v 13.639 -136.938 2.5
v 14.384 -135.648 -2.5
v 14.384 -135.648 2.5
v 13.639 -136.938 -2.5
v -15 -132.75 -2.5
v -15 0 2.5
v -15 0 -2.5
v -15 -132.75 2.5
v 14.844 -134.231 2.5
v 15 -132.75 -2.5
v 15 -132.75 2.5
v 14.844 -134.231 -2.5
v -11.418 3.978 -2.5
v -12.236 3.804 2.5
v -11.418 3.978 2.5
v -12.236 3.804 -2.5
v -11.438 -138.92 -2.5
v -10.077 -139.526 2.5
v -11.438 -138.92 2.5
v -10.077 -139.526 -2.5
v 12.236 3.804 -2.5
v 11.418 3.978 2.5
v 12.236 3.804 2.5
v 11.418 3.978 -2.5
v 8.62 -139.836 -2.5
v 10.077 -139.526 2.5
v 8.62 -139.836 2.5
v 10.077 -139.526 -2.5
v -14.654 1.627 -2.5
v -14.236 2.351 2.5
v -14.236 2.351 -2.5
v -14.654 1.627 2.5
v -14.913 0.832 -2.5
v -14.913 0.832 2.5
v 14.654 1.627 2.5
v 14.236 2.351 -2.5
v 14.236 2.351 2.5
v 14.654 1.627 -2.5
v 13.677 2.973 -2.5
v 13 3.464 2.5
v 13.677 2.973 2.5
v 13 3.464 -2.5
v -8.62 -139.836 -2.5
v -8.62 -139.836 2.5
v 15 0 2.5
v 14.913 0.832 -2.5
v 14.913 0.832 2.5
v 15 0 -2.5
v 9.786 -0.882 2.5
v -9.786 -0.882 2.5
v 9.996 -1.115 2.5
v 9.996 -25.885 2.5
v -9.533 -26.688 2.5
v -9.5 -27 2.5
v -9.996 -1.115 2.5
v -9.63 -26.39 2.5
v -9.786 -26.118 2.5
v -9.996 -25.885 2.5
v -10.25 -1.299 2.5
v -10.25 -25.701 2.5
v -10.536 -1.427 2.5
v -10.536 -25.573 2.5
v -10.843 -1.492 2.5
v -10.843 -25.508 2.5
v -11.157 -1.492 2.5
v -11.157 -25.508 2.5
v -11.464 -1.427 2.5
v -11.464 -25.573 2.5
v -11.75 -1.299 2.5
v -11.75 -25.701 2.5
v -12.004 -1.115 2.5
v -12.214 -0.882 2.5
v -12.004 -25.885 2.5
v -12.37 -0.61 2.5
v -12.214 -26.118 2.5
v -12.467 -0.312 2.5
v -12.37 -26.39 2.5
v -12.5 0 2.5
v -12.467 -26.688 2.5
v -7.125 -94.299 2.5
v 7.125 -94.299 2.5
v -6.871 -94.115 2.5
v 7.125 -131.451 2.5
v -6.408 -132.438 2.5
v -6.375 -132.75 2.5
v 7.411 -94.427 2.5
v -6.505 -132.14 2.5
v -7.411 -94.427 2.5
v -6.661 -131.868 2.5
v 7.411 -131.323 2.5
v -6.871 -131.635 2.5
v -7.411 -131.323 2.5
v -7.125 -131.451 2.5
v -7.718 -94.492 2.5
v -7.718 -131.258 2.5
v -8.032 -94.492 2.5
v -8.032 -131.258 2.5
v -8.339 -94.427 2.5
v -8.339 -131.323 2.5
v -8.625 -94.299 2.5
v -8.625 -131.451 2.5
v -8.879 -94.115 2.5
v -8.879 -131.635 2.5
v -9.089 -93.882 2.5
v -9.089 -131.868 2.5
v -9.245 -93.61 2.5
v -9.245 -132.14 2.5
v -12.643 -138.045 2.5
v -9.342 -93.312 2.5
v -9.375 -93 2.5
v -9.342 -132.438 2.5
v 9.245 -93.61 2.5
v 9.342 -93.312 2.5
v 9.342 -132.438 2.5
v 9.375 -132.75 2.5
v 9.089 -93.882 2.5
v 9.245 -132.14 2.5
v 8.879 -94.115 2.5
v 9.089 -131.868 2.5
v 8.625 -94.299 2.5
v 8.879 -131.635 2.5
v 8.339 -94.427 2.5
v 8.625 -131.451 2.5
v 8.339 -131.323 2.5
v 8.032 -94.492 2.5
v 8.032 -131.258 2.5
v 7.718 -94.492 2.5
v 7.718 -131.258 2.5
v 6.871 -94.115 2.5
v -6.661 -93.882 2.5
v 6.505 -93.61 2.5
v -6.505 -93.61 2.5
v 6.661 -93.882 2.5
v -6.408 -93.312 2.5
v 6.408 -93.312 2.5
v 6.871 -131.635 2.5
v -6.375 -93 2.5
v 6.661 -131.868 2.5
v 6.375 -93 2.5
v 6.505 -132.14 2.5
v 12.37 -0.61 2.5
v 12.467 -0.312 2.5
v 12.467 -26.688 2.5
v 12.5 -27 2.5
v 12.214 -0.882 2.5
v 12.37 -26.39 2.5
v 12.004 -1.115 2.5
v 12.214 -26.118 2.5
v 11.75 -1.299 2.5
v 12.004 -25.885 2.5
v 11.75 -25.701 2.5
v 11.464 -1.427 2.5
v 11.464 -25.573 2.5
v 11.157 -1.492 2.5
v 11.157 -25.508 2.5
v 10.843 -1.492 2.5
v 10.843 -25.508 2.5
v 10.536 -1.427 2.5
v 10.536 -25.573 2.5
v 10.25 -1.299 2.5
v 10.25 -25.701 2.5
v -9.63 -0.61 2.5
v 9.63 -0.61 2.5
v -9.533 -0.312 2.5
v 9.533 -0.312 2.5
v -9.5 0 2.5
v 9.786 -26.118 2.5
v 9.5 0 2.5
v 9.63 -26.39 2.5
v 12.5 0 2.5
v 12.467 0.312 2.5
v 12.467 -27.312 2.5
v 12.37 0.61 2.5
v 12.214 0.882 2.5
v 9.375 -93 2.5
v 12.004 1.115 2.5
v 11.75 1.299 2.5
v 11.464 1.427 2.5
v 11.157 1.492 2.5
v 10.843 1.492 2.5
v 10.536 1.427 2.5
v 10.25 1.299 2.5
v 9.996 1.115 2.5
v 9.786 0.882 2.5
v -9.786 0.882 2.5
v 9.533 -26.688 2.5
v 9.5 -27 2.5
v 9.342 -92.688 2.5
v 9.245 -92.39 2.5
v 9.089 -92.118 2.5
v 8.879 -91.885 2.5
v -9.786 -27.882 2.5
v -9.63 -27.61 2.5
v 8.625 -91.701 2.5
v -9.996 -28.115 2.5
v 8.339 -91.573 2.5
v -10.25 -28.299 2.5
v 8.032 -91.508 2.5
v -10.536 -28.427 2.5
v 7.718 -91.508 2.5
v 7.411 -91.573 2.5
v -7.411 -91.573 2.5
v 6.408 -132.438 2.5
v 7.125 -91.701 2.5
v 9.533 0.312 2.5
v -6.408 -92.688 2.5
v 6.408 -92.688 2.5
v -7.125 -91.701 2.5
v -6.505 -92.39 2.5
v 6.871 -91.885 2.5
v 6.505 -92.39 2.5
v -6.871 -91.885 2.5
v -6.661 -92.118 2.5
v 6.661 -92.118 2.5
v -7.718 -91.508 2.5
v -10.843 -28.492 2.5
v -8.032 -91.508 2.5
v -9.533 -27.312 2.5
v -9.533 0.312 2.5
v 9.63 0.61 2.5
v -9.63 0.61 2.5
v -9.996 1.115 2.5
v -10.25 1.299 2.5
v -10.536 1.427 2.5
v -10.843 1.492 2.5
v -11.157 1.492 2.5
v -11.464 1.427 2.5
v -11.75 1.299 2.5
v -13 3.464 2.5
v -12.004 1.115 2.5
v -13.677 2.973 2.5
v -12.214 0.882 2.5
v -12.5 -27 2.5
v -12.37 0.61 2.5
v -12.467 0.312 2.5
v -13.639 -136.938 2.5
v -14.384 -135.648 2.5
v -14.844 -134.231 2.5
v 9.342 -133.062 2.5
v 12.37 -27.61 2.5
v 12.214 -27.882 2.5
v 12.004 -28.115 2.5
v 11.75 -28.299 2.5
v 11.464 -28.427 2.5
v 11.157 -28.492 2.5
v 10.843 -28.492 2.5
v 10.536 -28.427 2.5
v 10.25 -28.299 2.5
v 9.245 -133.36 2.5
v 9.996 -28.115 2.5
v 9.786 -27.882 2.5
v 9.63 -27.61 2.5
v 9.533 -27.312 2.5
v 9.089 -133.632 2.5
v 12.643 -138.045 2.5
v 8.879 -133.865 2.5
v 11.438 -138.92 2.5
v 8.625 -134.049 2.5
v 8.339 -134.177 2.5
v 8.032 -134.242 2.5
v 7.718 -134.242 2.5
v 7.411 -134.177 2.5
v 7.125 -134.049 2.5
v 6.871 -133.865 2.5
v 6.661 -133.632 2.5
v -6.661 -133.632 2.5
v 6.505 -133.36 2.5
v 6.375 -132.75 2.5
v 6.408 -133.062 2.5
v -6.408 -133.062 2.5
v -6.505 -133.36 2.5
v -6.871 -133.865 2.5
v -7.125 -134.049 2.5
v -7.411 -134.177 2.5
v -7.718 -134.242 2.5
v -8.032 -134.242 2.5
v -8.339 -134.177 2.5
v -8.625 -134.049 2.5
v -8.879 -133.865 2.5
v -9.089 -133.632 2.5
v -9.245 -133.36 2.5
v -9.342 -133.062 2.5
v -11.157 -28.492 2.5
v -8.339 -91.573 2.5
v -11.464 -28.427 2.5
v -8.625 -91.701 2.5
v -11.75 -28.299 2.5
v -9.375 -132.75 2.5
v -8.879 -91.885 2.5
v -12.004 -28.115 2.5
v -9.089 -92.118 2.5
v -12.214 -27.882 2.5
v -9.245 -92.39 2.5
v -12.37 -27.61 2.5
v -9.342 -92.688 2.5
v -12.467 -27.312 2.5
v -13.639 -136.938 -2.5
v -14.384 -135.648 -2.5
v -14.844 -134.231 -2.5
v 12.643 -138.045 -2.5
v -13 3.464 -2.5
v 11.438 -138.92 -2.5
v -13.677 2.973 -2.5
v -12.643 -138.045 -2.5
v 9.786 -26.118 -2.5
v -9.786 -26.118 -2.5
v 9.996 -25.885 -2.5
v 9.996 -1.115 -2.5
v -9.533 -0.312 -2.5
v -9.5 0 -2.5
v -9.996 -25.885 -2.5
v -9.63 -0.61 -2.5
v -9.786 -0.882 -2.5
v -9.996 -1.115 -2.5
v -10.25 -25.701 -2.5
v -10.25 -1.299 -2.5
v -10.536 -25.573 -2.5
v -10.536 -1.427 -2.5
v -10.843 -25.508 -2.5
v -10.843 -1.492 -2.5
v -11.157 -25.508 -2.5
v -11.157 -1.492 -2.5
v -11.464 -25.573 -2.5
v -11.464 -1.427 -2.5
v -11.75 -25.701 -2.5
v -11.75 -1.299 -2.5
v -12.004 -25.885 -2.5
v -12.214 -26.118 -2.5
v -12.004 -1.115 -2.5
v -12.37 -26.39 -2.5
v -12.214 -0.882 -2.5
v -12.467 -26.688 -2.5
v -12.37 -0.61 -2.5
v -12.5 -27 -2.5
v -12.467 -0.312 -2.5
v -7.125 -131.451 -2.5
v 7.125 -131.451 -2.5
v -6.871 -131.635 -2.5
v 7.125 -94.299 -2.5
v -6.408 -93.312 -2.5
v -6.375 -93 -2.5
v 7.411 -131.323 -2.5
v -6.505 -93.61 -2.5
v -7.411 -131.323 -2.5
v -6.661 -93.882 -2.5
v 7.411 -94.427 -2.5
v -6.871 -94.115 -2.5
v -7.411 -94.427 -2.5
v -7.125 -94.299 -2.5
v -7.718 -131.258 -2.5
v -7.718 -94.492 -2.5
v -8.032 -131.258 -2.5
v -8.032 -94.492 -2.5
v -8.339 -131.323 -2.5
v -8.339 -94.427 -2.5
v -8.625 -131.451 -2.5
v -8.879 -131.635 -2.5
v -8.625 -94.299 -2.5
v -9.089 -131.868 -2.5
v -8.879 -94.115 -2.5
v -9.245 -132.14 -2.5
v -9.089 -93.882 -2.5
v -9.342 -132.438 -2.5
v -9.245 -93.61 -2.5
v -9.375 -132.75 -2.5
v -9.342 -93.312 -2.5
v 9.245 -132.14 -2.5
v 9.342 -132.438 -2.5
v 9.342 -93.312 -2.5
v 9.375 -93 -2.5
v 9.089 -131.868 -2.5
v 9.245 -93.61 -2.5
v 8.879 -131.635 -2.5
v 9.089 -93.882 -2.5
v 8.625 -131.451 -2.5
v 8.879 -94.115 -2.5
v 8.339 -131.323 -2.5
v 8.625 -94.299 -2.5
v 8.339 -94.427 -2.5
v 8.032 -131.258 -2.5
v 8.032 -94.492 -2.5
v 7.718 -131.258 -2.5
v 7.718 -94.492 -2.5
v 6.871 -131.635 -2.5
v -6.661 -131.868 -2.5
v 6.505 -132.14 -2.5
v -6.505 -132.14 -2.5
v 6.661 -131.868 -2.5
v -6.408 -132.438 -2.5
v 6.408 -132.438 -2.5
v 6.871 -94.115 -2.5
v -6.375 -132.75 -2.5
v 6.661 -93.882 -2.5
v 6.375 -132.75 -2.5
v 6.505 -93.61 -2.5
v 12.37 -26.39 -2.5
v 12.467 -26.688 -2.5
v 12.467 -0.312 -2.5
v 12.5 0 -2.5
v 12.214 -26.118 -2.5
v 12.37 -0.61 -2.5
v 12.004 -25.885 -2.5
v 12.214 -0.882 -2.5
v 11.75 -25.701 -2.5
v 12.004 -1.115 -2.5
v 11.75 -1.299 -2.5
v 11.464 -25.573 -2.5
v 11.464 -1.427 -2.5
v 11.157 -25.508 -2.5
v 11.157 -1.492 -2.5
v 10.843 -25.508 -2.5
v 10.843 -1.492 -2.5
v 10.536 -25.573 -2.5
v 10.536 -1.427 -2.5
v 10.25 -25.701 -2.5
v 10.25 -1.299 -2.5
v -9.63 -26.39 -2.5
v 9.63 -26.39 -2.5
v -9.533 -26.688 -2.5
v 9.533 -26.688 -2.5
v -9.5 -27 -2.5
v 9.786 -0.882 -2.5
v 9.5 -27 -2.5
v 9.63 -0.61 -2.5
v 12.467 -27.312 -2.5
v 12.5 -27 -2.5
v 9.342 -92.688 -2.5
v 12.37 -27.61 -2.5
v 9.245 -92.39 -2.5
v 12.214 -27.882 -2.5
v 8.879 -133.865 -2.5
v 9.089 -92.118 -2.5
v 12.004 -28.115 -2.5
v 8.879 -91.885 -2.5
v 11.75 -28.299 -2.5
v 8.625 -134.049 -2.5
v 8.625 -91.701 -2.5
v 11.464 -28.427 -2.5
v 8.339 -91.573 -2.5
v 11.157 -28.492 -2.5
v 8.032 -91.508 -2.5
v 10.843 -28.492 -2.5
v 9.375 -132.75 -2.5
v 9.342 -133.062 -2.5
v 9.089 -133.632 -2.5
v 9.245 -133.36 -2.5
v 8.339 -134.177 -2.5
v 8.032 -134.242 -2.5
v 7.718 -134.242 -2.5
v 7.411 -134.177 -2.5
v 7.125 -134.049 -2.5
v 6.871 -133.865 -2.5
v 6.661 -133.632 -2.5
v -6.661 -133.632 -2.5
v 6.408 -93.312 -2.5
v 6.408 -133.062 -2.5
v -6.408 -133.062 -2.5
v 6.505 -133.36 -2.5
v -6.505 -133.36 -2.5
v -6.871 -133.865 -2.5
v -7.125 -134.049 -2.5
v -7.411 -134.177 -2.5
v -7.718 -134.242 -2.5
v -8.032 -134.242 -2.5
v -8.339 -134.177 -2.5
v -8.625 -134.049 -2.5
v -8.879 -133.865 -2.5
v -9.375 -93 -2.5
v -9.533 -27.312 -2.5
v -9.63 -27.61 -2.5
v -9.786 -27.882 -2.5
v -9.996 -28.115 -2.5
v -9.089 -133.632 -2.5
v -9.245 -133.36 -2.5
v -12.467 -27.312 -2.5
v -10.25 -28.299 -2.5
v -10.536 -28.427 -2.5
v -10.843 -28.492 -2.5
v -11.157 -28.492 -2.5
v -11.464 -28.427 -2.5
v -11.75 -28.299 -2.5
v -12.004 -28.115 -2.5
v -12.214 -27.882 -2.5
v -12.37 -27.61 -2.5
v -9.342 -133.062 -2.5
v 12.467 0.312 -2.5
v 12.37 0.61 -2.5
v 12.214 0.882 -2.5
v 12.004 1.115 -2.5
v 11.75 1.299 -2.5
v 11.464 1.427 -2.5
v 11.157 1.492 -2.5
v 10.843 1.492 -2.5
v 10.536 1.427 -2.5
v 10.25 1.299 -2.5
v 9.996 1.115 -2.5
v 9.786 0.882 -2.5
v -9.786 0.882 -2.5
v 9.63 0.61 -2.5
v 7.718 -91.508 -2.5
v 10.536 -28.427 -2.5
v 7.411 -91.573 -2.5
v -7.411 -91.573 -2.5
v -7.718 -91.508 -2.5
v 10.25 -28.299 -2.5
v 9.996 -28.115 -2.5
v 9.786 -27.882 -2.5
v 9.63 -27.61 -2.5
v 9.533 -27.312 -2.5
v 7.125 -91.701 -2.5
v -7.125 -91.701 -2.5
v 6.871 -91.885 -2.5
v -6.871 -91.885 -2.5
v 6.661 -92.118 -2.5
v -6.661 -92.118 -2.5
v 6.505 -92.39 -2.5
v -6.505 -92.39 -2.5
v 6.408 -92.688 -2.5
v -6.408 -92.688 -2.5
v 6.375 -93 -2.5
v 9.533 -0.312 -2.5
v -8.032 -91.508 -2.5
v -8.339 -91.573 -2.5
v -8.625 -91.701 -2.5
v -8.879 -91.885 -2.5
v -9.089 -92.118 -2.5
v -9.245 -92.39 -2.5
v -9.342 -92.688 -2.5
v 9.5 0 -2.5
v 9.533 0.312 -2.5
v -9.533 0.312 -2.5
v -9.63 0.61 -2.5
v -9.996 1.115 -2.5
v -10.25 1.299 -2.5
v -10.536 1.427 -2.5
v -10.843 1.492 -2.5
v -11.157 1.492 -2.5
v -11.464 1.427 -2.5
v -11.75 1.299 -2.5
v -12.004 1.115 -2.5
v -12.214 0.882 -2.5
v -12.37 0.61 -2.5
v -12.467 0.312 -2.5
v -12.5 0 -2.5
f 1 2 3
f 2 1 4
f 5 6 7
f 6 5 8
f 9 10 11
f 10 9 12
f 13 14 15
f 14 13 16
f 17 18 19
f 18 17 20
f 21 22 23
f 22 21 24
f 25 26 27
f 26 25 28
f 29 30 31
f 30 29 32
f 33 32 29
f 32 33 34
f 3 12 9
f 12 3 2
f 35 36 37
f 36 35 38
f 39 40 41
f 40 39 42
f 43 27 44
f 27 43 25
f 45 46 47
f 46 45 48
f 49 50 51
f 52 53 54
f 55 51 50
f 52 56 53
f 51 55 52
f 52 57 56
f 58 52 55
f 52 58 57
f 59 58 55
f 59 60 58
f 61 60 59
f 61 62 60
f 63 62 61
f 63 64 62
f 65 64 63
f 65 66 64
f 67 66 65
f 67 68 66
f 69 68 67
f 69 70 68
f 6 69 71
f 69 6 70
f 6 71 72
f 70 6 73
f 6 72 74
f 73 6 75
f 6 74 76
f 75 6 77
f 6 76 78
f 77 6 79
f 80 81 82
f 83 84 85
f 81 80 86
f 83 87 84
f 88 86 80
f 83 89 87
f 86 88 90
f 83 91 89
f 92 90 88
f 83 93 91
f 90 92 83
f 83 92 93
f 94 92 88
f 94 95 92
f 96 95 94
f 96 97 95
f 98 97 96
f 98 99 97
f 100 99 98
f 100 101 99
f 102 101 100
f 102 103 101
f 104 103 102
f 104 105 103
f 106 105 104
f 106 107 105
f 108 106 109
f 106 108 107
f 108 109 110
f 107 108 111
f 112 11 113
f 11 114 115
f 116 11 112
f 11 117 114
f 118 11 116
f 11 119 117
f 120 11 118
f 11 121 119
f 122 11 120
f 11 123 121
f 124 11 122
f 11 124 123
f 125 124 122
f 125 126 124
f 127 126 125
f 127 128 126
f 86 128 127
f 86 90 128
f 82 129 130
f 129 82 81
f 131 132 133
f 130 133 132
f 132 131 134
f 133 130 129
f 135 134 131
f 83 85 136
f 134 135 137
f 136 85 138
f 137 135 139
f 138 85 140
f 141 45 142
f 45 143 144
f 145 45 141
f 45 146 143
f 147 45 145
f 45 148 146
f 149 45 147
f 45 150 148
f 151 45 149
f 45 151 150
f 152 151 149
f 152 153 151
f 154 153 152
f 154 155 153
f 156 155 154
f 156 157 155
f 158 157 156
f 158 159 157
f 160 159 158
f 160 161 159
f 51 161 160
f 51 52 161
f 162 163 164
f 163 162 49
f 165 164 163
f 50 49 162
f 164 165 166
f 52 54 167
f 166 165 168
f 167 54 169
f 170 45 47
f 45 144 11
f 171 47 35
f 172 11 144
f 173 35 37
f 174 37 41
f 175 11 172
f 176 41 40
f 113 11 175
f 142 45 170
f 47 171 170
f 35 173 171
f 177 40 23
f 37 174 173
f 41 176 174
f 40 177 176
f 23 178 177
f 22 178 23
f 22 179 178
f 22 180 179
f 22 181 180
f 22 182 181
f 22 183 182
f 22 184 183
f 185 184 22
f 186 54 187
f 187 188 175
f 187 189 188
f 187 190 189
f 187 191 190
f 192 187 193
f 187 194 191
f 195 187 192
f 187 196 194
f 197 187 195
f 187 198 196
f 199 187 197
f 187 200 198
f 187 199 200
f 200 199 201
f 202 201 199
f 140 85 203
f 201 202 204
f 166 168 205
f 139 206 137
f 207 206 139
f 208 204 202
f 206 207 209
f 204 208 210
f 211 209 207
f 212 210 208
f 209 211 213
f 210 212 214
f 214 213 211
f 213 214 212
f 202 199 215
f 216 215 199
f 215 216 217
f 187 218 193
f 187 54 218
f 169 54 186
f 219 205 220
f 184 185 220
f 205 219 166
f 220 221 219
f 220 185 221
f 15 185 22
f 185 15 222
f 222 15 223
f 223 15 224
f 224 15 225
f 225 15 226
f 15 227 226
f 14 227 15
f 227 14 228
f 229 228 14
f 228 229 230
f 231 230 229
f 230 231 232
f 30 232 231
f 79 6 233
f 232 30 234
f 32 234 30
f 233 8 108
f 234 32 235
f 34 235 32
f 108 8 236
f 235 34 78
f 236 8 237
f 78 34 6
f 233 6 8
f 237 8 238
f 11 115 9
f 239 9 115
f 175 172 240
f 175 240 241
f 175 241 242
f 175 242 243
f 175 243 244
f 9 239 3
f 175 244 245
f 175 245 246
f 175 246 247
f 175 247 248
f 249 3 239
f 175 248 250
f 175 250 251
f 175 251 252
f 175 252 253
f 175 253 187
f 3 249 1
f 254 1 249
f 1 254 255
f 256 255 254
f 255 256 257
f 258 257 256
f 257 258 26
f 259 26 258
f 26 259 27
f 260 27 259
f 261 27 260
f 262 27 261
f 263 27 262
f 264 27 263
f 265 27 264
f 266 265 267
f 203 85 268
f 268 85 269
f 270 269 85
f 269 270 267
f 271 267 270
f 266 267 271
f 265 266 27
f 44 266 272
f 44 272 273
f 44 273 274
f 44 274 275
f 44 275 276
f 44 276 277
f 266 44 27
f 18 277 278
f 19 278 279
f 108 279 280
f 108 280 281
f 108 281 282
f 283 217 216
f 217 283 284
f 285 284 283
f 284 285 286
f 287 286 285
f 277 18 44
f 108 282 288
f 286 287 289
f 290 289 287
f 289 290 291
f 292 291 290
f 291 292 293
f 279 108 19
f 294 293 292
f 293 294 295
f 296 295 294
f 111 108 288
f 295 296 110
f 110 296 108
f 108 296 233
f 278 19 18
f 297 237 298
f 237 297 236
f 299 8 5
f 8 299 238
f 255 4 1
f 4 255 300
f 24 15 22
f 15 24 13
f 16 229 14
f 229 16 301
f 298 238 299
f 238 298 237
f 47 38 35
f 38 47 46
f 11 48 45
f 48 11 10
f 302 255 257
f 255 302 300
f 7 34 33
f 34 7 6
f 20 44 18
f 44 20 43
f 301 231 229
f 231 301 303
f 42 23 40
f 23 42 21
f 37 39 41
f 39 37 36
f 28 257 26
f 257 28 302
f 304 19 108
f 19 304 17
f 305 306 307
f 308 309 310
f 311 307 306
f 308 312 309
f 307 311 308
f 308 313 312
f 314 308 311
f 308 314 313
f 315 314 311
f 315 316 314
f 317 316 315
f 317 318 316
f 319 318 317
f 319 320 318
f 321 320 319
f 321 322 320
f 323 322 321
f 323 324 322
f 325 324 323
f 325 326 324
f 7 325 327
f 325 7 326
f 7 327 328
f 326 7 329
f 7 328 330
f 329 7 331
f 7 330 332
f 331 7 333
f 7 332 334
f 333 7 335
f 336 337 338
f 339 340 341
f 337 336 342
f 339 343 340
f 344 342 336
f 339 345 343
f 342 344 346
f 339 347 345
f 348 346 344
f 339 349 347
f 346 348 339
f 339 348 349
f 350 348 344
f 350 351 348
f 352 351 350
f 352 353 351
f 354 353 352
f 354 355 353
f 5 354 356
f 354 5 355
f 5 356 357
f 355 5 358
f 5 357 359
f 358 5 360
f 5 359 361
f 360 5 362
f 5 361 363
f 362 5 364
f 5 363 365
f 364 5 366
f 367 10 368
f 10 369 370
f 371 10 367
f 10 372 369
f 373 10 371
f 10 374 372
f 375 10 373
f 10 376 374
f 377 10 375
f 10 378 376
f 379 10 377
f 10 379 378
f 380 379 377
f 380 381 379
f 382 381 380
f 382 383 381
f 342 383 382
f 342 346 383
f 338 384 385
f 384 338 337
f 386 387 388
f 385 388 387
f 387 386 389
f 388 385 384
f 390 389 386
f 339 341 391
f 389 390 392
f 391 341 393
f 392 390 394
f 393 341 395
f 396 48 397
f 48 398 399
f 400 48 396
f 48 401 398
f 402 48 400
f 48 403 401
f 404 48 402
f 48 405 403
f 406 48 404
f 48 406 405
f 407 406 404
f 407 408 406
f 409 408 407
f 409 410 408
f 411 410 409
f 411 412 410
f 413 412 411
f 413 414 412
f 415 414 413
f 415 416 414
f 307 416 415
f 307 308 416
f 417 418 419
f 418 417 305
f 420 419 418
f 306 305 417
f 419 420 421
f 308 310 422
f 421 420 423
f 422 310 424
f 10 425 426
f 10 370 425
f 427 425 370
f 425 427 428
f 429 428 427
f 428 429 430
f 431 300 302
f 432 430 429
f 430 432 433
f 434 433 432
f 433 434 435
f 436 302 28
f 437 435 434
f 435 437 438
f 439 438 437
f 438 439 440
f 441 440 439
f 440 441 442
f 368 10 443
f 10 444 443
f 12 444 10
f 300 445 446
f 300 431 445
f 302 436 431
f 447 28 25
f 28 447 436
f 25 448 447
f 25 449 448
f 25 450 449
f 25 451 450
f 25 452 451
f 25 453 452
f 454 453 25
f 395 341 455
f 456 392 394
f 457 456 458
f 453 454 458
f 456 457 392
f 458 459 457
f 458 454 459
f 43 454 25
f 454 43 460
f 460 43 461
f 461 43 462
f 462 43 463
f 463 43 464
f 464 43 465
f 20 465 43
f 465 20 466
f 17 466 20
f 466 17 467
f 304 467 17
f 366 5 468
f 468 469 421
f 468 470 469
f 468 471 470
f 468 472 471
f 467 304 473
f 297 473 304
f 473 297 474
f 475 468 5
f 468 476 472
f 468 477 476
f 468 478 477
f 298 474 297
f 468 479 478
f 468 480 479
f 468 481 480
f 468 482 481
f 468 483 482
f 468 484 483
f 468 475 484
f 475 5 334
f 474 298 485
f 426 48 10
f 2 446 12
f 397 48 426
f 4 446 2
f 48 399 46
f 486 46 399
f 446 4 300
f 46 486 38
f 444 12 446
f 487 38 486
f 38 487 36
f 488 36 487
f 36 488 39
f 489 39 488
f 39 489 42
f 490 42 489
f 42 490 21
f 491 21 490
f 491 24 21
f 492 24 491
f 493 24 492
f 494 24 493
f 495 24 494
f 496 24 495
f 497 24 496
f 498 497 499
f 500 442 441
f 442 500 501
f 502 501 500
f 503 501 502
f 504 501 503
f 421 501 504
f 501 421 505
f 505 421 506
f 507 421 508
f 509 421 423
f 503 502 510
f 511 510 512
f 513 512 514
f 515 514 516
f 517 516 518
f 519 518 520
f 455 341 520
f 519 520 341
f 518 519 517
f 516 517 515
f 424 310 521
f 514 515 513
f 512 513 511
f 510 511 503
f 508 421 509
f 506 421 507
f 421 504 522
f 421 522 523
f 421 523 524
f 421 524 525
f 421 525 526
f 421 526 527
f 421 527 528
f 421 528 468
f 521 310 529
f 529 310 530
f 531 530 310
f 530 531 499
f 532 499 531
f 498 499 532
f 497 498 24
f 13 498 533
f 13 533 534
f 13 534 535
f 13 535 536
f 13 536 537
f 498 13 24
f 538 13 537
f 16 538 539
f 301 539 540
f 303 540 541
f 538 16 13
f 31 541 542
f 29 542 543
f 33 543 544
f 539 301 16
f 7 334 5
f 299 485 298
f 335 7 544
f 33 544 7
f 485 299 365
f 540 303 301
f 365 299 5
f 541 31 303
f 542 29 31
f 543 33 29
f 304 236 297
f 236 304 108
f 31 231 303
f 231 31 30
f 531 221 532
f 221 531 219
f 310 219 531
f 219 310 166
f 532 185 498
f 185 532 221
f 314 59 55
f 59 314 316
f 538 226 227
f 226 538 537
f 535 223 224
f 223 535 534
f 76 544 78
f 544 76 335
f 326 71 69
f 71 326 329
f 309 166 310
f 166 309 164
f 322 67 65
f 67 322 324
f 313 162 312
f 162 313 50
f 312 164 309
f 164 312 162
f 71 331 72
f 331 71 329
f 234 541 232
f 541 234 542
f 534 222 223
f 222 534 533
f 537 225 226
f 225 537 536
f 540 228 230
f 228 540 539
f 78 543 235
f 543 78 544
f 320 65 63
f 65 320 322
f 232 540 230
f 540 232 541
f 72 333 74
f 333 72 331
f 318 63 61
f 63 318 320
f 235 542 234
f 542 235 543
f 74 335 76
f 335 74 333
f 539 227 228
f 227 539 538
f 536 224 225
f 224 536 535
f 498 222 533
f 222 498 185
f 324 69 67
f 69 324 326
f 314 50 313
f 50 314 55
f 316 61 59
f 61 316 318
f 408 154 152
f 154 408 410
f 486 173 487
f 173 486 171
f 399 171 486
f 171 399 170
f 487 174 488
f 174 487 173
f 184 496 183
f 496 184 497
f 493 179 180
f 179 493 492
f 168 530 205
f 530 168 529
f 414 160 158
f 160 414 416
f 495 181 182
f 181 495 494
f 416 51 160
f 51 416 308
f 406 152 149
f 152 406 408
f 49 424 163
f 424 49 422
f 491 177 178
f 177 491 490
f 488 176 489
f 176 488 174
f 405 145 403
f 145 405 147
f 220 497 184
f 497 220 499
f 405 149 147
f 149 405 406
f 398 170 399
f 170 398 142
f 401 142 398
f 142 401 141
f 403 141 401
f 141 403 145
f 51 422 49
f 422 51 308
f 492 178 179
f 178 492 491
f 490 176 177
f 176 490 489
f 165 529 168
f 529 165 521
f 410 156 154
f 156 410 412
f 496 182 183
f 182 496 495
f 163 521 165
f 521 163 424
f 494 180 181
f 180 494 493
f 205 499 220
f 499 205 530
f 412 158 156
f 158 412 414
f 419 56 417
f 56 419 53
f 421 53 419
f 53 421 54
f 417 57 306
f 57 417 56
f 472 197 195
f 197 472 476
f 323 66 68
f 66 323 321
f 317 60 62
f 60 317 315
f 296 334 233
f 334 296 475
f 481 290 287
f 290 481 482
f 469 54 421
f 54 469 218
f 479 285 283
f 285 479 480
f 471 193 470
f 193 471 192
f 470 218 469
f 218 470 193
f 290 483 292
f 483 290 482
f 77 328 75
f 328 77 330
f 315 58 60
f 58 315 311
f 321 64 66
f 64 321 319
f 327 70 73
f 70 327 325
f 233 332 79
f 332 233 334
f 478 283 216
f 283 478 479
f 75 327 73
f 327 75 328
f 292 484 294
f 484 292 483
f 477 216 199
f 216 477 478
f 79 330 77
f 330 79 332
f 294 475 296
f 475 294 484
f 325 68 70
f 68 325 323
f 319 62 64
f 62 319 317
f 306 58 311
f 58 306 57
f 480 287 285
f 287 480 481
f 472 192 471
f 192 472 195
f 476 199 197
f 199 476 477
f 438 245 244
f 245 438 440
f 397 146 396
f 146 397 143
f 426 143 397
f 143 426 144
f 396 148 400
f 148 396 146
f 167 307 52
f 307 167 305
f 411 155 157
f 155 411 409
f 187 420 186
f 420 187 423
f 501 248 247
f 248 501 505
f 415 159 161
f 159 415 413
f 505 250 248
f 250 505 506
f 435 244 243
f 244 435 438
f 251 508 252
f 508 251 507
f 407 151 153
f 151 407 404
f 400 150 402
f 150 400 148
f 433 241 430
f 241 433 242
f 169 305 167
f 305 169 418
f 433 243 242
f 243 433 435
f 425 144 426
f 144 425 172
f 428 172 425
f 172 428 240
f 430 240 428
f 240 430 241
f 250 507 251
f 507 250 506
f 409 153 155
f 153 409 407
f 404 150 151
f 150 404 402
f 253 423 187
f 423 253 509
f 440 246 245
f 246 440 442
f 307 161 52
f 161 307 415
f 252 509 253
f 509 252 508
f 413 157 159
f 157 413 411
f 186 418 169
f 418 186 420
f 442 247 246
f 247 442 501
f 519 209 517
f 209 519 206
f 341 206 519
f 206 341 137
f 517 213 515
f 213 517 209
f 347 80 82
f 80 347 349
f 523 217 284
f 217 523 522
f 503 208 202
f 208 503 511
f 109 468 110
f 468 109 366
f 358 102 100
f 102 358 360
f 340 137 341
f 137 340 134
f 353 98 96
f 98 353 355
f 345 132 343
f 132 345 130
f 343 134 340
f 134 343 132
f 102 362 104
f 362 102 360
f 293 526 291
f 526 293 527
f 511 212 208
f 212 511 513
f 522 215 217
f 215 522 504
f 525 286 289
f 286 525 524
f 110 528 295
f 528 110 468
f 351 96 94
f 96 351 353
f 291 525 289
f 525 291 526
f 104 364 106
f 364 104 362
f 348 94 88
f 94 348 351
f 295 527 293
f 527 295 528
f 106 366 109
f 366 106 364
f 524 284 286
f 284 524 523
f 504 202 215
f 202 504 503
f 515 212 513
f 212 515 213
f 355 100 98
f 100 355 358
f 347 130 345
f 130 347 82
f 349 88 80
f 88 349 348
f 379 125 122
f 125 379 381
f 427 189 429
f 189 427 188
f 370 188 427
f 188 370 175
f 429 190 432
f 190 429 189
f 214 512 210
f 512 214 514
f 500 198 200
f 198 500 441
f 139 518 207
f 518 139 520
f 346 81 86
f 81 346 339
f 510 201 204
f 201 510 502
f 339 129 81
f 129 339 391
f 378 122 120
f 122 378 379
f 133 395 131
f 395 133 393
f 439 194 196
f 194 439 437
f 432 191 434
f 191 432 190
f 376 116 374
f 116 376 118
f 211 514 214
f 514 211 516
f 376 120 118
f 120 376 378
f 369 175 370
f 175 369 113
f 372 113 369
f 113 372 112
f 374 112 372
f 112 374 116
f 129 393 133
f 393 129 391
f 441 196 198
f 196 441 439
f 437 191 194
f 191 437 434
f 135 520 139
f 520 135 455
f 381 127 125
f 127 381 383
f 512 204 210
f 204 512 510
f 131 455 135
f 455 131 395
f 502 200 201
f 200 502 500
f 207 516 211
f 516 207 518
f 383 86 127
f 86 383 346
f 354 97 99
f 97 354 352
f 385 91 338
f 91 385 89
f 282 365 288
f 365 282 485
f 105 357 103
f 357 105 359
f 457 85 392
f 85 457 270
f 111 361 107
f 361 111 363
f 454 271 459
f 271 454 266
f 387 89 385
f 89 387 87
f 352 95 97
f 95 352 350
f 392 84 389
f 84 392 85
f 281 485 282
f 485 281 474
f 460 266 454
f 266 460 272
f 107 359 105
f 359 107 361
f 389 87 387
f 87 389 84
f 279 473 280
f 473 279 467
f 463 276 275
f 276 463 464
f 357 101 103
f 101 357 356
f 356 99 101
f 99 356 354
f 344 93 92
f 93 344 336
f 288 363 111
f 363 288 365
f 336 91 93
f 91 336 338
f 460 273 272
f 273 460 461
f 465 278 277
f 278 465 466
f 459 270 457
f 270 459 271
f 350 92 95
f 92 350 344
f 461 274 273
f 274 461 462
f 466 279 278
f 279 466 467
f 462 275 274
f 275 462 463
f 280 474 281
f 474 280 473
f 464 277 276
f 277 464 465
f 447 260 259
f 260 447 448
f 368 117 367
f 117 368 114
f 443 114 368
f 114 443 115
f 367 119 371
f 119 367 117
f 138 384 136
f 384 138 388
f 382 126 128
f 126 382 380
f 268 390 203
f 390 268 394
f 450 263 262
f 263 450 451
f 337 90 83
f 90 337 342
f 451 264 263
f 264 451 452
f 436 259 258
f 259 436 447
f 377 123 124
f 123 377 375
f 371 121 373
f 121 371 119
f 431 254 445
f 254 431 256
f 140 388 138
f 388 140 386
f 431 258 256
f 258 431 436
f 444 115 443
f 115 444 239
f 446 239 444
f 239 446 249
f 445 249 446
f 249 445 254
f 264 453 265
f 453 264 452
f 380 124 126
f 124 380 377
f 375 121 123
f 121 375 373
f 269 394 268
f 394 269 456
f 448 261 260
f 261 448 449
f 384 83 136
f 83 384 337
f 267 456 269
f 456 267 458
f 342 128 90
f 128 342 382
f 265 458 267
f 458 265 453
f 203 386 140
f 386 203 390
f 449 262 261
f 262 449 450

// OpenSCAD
s=5;
$fn=30;
difference(){
hull(){
    translate([-11,0,0]) cylinder(h=s, r=4, center=true);
    translate([11,0,0]) cylinder(h=s, r=4, center=true);
    translate([-(13+18.5)/4,-93-(37+42.5)/2,0]) cylinder(h=s, d=30-(13+18.5)/2, center=true);
    translate([(13+18.5)/4,-93-(37+42.5)/2,0]) cylinder(h=s, d=30-(13+18.5)/2, center=true);
}
    translate([-11,0,0]) cylinder(h=s+1, d=3, center=true);
    translate([11,0,0]) cylinder(h=s+1, d=3, center=true);
    translate([-11,-27,0]) cylinder(h=s+1, d=3, center=true);
    translate([11,-27,0]) cylinder(h=s+1, d=3, center=true);
    {
    translate([-(13+18.5)/4,-93,0]) cylinder(h=s+1, d=3, center=true);
    translate([(13+18.5)/4,-93,0]) cylinder(h=s+1, d=3, center=true);
    translate([-(13+18.5)/4,-93-(37+42.5)/2,0]) cylinder(h=s+1, d=3, center=true);
    translate([(13+18.5)/4,-93-(37+42.5)/2,0]) cylinder(h=s+1, d=3, center=true);
    }
}




// for biasing
//translate([0,-27/2,0]) extruder();
//translate([-13,-93-((37+42.5)/4),-16]) laser();
//translate([0,-29,0]) rotate([90,0,0]) linear_extrude(height=80,) square([30,s],true);

//module extruder() {
//    difference(){ {hull()
//    {
//    translate([-11,27/2,0]) cylinder(h=s, r=4, center=true);
//    translate([11,27/2,0]) cylinder(h=s, r=4, center=true);
//    translate([-11,-27/2,0]) cylinder(h=s, r=4, center=true);
//    translate([11,-27/2,0]) cylinder(h=s, r=4, center=true);
//    }}
//    {
//    translate([-11,27/2,0]) cylinder(h=s+1, d=3, center=true);
//    translate([11,27/2,0]) cylinder(h=s+1, d=3, center=true);
//    translate([-11,-27/2,0]) cylinder(h=s+1, d=3, center=true);
//    translate([11,-27/2,0]) cylinder(h=s+1, d=3, center=true);
//    }
//    }
//}

//module laser() {
//    difference(){ {hull()
//    {
//    translate([-(13+18.5)/4,(37+42.5)/4,0]) cylinder(h=s, d=30-(13+18.5)/2, center=true);
//    translate([(13+18.5)/4,(37+42.5)/4,0]) cylinder(h=s, d=30-(13+18.5)/2, center=true);
//    translate([-(13+18.5)/4,-(37+42.5)/4,0]) cylinder(h=s, d=30-(13+18.5)/2, center=true);
//    translate([(13+18.5)/4,-(37+42.5)/4,0]) cylinder(h=s, d=30-(13+18.5)/2, center=true);
//    }}
//    {
//    translate([-(13+18.5)/4,(37+42.5)/4,0]) cylinder(h=s+1, d=3, center=true);
//    translate([(13+18.5)/4,(37+42.5)/4,0]) cylinder(h=s+1, d=3, center=true);
//    translate([-(13+18.5)/4,-(37+42.5)/4,0]) cylinder(h=s+1, d=3, center=true);
//    translate([(13+18.5)/4,-(37+42.5)/4,0]) cylinder(h=s+1, d=3, center=true);
//    }
//    }
//}
